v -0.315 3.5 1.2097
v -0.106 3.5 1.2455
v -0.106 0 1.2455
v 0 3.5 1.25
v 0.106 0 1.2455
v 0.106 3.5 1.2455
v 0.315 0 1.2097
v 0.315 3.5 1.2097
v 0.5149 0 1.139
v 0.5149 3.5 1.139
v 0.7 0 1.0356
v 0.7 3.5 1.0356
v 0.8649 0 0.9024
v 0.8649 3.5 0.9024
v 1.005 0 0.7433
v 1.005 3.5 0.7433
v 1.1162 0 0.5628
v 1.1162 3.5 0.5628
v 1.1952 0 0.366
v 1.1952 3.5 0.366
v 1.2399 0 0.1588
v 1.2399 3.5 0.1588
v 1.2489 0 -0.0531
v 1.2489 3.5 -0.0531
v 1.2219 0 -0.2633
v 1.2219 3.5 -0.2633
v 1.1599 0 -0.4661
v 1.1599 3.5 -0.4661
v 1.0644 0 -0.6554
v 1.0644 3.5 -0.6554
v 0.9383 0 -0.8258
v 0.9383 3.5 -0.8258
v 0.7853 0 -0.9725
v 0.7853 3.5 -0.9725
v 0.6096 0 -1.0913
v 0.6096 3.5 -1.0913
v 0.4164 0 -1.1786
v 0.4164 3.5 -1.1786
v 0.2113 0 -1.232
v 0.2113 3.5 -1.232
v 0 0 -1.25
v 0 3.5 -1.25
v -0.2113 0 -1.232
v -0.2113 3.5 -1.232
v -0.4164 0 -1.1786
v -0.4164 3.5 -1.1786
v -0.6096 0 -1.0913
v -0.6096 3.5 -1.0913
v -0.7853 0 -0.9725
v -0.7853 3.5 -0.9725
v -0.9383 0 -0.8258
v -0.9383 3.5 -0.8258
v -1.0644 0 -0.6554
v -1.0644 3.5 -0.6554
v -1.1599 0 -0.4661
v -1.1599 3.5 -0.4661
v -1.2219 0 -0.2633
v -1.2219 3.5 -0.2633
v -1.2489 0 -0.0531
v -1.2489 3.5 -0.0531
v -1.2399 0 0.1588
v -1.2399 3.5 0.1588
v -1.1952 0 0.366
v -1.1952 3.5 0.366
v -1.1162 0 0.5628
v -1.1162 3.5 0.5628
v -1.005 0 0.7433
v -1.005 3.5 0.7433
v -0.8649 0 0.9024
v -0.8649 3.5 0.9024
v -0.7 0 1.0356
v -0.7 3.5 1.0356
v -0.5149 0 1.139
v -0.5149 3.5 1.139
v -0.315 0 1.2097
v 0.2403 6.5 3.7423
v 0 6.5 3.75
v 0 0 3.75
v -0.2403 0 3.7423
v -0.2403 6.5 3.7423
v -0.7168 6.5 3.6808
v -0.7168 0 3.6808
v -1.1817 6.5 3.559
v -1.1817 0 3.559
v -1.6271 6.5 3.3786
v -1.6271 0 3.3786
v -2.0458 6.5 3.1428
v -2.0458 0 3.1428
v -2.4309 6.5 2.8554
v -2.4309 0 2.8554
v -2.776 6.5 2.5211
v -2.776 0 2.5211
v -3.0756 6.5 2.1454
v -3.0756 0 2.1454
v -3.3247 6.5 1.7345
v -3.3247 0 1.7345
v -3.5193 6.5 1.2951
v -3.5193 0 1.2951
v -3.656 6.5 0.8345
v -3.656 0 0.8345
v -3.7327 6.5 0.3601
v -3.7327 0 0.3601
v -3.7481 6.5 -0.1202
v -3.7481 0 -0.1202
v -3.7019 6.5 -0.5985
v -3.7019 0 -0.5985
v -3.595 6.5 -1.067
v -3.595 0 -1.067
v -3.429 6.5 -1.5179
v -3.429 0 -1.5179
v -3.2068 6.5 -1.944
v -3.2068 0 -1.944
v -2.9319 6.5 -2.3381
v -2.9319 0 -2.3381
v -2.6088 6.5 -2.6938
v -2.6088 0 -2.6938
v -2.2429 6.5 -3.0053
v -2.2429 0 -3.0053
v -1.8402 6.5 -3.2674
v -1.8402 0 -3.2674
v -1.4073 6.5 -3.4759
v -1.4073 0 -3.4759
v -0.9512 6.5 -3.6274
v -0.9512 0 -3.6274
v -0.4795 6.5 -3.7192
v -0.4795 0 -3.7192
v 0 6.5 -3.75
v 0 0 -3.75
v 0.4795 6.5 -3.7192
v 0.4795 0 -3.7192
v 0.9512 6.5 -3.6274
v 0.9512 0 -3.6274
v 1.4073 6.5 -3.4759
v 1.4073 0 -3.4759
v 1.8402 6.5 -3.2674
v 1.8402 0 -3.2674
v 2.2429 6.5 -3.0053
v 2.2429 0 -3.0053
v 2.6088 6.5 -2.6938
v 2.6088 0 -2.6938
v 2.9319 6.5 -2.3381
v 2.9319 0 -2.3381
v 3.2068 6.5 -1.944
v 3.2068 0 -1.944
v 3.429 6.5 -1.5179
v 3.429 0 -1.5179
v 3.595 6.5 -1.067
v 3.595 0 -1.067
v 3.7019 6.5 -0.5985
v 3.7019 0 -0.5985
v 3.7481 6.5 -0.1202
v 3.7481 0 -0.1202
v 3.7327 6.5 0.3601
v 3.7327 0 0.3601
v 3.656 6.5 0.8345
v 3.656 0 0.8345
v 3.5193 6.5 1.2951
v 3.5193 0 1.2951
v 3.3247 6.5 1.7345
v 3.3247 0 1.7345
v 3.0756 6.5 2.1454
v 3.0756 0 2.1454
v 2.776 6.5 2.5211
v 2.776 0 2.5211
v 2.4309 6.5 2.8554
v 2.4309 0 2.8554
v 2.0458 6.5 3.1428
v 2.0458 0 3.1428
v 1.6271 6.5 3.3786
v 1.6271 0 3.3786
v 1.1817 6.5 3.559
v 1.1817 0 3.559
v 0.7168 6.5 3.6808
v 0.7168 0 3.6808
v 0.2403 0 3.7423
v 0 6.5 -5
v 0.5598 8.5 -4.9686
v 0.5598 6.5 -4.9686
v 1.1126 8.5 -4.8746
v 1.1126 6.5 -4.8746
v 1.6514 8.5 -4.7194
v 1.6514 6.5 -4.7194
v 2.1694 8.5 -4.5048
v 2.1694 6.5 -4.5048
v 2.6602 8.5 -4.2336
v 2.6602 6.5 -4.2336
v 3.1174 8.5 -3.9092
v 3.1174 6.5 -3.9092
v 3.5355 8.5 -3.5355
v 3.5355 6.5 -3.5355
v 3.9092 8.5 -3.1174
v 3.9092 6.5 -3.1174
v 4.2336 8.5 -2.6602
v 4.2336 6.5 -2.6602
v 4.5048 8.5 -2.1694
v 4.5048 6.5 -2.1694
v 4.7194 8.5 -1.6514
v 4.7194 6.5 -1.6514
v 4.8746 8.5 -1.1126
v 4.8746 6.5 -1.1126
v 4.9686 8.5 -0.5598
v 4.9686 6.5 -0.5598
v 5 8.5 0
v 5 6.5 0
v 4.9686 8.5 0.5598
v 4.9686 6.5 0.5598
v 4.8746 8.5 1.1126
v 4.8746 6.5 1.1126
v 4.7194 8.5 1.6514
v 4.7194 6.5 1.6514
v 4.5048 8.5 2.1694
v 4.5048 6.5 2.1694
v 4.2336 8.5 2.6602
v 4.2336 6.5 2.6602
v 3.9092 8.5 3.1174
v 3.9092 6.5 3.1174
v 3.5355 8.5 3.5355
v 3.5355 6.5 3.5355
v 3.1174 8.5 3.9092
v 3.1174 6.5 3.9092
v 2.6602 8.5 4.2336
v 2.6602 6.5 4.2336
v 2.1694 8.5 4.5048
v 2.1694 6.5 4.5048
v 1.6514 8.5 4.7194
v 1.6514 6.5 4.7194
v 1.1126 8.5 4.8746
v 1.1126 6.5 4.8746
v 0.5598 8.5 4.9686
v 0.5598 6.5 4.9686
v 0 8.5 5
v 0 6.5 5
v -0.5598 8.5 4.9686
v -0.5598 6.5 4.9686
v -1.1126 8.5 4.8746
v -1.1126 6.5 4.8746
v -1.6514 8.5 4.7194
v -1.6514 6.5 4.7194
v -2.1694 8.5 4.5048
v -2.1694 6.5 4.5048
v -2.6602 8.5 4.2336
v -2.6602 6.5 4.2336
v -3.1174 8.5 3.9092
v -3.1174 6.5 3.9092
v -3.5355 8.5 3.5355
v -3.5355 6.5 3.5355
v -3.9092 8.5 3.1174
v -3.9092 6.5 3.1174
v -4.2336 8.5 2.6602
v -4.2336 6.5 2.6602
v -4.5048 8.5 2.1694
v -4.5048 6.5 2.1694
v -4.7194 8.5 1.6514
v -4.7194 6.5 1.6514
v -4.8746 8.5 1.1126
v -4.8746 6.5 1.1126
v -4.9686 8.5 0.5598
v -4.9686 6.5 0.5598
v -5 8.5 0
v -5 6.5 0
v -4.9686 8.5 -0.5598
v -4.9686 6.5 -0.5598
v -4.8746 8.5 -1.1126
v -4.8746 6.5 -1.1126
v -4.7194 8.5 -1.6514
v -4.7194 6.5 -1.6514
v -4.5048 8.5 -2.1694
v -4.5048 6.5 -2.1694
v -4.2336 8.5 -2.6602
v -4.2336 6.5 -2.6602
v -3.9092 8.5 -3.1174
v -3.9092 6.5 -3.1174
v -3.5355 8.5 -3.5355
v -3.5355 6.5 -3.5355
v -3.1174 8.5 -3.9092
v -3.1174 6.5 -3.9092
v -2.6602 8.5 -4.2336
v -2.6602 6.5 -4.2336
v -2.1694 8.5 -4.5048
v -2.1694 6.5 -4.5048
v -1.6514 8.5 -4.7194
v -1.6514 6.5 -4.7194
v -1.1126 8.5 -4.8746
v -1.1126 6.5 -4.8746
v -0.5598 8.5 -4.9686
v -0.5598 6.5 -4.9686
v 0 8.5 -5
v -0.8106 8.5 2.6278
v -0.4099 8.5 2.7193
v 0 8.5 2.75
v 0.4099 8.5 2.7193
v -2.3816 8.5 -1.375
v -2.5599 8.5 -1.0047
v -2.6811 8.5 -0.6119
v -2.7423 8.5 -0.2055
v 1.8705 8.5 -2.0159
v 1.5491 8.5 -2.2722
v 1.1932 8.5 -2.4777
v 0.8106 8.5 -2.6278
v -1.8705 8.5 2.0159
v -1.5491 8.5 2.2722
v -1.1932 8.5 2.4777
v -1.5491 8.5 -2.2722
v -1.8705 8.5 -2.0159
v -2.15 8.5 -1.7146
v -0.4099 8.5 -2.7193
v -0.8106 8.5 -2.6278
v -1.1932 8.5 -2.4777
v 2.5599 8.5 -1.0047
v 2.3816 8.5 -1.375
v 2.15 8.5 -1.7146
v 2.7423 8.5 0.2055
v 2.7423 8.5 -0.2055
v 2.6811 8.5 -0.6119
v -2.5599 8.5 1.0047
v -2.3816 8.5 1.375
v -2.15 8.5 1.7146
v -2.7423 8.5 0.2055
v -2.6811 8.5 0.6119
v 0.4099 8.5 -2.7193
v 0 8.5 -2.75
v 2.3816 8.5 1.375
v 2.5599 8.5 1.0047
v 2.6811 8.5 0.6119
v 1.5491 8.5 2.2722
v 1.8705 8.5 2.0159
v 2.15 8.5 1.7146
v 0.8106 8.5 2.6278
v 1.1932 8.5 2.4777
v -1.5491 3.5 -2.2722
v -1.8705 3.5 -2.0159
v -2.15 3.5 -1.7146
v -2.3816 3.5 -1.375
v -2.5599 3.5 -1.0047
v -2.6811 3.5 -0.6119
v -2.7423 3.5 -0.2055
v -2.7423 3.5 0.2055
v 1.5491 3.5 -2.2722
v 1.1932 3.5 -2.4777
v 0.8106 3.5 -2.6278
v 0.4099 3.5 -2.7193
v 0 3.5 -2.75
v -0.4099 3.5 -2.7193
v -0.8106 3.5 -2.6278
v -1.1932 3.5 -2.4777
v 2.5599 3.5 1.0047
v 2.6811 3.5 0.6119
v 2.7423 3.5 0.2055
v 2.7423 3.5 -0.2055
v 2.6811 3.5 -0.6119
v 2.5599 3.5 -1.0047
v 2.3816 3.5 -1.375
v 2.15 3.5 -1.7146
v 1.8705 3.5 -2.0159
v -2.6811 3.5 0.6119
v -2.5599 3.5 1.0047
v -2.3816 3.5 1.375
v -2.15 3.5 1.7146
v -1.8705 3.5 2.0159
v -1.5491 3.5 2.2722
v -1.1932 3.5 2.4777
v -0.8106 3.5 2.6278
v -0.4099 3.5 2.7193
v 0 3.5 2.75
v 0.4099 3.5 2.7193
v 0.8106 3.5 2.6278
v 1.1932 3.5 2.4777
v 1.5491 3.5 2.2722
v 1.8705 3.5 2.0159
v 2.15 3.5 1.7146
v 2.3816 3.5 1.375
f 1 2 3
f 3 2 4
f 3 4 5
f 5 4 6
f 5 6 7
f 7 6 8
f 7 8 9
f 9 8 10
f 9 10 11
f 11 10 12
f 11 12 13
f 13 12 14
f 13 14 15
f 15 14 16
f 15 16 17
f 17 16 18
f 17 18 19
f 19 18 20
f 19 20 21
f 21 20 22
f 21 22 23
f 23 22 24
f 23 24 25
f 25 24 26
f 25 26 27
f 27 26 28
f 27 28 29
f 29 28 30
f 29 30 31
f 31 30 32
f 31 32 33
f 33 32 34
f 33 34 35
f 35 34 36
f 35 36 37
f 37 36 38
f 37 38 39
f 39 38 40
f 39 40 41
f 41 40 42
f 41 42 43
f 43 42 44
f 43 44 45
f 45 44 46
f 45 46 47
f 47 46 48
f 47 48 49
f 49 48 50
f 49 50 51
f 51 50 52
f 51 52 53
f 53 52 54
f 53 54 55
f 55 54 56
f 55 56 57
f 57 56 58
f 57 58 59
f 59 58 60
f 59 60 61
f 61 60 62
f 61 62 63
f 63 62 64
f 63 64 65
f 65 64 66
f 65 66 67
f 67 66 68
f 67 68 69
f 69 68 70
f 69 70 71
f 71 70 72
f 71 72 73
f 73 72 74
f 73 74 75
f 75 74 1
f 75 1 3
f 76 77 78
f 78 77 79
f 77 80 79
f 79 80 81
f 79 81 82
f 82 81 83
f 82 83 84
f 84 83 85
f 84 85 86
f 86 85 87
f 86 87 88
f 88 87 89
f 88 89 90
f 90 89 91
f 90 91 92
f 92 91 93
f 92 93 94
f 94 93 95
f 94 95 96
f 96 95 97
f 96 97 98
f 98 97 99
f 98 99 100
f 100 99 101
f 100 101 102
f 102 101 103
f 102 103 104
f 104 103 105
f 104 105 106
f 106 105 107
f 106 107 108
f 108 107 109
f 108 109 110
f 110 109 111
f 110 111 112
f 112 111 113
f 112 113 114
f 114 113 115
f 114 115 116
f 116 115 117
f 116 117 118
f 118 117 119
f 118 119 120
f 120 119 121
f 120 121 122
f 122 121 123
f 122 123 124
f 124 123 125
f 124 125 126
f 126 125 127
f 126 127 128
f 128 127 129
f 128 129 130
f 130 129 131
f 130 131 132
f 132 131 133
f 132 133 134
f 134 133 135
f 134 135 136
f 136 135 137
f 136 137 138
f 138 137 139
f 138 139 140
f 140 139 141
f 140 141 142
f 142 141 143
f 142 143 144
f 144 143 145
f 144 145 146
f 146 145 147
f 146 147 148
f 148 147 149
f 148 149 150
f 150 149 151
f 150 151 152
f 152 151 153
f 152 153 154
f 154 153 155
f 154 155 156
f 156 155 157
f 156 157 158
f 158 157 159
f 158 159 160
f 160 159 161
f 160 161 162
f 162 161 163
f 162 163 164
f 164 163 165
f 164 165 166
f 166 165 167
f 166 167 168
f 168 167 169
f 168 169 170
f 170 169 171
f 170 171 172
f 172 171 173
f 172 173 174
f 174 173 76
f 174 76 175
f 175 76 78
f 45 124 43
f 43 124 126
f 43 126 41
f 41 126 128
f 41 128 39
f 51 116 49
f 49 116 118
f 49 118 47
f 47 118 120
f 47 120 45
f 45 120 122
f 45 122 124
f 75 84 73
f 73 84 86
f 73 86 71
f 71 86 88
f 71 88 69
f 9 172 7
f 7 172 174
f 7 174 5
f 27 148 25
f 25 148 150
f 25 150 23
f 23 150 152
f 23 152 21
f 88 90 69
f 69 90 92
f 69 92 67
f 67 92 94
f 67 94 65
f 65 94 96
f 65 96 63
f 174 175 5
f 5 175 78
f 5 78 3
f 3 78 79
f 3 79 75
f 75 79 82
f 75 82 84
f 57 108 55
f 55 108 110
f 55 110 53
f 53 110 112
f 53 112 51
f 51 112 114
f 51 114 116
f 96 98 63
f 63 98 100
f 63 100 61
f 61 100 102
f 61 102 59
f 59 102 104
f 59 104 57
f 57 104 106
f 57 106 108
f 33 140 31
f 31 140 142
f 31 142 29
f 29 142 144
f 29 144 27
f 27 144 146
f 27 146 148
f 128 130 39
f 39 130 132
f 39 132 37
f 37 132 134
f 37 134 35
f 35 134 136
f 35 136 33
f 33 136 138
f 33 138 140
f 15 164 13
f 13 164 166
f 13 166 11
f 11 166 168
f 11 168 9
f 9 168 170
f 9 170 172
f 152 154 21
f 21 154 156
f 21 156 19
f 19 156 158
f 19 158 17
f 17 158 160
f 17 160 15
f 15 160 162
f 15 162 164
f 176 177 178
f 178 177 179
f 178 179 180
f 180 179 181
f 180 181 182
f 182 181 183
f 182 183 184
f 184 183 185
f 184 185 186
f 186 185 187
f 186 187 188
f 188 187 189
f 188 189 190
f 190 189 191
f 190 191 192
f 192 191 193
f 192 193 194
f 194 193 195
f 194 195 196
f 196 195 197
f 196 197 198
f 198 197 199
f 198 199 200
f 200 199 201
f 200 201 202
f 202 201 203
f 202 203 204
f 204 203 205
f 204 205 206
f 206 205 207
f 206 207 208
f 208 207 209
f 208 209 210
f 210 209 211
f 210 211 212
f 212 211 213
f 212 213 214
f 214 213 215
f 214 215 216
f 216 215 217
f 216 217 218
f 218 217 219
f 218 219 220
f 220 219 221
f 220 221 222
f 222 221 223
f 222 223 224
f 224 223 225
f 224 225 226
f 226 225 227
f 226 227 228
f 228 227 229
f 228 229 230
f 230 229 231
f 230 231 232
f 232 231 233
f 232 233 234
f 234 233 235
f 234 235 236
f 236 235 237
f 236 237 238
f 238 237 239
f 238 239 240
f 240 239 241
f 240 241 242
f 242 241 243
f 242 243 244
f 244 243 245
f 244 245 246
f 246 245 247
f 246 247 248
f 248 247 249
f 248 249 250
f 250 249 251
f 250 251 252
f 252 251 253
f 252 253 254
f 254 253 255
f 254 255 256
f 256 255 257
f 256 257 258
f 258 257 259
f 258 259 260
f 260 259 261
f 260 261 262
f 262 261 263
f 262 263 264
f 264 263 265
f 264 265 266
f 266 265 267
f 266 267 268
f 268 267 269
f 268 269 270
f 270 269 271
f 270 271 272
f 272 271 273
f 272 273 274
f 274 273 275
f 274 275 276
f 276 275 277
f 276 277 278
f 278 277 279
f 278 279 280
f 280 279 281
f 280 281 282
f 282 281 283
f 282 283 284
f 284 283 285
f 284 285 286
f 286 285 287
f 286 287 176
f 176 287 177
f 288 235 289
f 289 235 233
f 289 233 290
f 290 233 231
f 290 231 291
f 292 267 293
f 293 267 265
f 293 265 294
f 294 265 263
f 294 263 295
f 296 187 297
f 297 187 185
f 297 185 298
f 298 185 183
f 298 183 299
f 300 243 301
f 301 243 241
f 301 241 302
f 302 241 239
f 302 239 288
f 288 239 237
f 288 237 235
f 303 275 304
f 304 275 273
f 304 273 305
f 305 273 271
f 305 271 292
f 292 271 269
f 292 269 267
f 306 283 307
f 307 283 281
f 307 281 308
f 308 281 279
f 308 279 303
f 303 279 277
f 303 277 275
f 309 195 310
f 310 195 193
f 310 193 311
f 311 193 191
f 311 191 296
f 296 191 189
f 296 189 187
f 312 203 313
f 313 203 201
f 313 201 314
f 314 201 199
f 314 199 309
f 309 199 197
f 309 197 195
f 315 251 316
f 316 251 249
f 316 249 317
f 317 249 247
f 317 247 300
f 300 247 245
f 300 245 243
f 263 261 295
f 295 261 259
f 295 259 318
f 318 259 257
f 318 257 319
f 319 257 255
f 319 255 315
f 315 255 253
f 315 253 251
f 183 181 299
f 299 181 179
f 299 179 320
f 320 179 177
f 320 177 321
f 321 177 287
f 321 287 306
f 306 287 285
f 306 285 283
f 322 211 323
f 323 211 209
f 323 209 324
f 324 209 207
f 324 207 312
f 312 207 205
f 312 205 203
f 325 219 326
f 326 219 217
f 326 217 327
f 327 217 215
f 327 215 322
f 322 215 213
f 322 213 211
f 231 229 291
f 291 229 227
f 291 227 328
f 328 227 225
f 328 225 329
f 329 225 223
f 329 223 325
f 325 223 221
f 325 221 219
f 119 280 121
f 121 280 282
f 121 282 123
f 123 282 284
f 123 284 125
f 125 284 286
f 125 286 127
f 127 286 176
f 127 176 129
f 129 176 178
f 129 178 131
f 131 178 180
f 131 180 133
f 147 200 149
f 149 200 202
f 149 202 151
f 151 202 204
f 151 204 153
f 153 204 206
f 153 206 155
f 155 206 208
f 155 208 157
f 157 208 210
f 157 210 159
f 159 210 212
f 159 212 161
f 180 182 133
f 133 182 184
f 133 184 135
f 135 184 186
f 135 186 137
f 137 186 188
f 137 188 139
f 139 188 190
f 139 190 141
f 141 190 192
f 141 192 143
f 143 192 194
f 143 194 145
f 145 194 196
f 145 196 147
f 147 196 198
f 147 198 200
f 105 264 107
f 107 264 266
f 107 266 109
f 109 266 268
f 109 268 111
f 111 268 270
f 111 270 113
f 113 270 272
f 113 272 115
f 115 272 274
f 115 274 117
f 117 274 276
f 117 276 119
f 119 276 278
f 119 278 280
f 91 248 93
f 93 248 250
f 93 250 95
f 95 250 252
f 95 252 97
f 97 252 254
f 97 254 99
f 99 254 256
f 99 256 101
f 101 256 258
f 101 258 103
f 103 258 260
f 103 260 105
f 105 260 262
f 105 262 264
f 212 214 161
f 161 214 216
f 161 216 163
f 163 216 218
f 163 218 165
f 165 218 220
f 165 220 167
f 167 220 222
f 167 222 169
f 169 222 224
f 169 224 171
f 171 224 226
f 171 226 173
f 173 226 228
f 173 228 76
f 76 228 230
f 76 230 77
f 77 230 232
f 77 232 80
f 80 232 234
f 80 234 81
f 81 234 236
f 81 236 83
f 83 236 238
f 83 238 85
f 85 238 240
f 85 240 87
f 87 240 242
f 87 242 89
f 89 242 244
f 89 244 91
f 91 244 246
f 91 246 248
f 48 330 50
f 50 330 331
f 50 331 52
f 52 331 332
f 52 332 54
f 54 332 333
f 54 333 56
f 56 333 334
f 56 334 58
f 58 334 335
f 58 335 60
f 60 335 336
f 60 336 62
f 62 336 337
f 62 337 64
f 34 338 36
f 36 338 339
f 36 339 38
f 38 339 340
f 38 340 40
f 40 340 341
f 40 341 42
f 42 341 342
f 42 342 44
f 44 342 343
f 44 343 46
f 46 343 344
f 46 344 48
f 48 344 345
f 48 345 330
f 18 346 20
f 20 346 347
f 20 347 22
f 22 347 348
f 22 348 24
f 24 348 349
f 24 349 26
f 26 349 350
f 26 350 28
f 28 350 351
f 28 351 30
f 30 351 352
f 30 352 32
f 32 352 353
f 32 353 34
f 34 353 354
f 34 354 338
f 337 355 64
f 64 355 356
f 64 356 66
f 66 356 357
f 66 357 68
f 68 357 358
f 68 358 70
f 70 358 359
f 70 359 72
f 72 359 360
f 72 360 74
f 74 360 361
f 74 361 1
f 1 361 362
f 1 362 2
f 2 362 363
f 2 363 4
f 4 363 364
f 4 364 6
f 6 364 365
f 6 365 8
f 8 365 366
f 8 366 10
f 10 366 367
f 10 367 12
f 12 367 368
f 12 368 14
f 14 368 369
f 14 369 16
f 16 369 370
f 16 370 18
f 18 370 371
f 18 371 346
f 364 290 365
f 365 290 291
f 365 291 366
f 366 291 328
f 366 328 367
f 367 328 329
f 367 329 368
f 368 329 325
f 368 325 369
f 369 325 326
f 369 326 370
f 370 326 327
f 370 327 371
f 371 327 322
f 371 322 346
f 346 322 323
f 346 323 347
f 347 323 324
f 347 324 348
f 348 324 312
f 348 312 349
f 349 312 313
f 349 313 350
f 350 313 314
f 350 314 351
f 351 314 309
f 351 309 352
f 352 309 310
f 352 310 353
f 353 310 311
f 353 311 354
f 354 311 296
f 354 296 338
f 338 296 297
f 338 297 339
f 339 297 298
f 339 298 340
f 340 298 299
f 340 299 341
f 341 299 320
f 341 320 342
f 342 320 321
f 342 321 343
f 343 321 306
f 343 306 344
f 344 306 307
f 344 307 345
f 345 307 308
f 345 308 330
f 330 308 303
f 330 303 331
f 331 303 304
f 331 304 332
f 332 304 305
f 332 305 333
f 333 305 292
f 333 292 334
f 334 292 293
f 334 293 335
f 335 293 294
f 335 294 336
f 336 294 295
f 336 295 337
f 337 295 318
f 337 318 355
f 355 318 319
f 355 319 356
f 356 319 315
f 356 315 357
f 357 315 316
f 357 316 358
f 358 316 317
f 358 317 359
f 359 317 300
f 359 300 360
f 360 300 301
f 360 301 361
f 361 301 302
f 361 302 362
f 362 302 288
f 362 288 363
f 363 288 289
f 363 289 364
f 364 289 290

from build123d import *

# Parameters (mm, degrees)
SKETCH2_R           = 3.75
BOSS_EXTRUDE1_DEPTH = 6.5
SKETCH3_R           = 5
BOSS_EXTRUDE2_DEPTH = 2
SKETCH4_R           = 1.25
CUT_EXTRUDE1_DEPTH  = 6.5
SKETCH5_R           = 2.75
CUT_EXTRUDE2_DEPTH  = 5


with BuildPart() as part:
    # Sketch2 → Boss-Extrude1 (new body)
    with BuildSketch(Plane(origin=(0, 0, 0), x_dir=(1, 0, 0), z_dir=(0, 1, 0))):
        Circle(SKETCH2_R)
    extrude(amount=BOSS_EXTRUDE1_DEPTH)

    # Sketch3 → Boss-Extrude2 (add)
    with BuildSketch(Plane(origin=(0, 6.5, 0), x_dir=(1, 0, 0), z_dir=(0, 1, 0))):
        Circle(SKETCH3_R)
    extrude(amount=BOSS_EXTRUDE2_DEPTH)

    # Sketch4 → Cut-Extrude1 (cut)
    with BuildSketch(Plane.XZ):
        Circle(SKETCH4_R)
    extrude(amount=-CUT_EXTRUDE1_DEPTH, mode=Mode.SUBTRACT)

    # Sketch5 → Cut-Extrude2 (cut)
    with BuildSketch(Plane(origin=(0, 8.5, 0), x_dir=(1, 0, 0), z_dir=(0, 1, 0))):
        Circle(SKETCH5_R)
    extrude(amount=-CUT_EXTRUDE2_DEPTH, mode=Mode.SUBTRACT)


solid = part.part
